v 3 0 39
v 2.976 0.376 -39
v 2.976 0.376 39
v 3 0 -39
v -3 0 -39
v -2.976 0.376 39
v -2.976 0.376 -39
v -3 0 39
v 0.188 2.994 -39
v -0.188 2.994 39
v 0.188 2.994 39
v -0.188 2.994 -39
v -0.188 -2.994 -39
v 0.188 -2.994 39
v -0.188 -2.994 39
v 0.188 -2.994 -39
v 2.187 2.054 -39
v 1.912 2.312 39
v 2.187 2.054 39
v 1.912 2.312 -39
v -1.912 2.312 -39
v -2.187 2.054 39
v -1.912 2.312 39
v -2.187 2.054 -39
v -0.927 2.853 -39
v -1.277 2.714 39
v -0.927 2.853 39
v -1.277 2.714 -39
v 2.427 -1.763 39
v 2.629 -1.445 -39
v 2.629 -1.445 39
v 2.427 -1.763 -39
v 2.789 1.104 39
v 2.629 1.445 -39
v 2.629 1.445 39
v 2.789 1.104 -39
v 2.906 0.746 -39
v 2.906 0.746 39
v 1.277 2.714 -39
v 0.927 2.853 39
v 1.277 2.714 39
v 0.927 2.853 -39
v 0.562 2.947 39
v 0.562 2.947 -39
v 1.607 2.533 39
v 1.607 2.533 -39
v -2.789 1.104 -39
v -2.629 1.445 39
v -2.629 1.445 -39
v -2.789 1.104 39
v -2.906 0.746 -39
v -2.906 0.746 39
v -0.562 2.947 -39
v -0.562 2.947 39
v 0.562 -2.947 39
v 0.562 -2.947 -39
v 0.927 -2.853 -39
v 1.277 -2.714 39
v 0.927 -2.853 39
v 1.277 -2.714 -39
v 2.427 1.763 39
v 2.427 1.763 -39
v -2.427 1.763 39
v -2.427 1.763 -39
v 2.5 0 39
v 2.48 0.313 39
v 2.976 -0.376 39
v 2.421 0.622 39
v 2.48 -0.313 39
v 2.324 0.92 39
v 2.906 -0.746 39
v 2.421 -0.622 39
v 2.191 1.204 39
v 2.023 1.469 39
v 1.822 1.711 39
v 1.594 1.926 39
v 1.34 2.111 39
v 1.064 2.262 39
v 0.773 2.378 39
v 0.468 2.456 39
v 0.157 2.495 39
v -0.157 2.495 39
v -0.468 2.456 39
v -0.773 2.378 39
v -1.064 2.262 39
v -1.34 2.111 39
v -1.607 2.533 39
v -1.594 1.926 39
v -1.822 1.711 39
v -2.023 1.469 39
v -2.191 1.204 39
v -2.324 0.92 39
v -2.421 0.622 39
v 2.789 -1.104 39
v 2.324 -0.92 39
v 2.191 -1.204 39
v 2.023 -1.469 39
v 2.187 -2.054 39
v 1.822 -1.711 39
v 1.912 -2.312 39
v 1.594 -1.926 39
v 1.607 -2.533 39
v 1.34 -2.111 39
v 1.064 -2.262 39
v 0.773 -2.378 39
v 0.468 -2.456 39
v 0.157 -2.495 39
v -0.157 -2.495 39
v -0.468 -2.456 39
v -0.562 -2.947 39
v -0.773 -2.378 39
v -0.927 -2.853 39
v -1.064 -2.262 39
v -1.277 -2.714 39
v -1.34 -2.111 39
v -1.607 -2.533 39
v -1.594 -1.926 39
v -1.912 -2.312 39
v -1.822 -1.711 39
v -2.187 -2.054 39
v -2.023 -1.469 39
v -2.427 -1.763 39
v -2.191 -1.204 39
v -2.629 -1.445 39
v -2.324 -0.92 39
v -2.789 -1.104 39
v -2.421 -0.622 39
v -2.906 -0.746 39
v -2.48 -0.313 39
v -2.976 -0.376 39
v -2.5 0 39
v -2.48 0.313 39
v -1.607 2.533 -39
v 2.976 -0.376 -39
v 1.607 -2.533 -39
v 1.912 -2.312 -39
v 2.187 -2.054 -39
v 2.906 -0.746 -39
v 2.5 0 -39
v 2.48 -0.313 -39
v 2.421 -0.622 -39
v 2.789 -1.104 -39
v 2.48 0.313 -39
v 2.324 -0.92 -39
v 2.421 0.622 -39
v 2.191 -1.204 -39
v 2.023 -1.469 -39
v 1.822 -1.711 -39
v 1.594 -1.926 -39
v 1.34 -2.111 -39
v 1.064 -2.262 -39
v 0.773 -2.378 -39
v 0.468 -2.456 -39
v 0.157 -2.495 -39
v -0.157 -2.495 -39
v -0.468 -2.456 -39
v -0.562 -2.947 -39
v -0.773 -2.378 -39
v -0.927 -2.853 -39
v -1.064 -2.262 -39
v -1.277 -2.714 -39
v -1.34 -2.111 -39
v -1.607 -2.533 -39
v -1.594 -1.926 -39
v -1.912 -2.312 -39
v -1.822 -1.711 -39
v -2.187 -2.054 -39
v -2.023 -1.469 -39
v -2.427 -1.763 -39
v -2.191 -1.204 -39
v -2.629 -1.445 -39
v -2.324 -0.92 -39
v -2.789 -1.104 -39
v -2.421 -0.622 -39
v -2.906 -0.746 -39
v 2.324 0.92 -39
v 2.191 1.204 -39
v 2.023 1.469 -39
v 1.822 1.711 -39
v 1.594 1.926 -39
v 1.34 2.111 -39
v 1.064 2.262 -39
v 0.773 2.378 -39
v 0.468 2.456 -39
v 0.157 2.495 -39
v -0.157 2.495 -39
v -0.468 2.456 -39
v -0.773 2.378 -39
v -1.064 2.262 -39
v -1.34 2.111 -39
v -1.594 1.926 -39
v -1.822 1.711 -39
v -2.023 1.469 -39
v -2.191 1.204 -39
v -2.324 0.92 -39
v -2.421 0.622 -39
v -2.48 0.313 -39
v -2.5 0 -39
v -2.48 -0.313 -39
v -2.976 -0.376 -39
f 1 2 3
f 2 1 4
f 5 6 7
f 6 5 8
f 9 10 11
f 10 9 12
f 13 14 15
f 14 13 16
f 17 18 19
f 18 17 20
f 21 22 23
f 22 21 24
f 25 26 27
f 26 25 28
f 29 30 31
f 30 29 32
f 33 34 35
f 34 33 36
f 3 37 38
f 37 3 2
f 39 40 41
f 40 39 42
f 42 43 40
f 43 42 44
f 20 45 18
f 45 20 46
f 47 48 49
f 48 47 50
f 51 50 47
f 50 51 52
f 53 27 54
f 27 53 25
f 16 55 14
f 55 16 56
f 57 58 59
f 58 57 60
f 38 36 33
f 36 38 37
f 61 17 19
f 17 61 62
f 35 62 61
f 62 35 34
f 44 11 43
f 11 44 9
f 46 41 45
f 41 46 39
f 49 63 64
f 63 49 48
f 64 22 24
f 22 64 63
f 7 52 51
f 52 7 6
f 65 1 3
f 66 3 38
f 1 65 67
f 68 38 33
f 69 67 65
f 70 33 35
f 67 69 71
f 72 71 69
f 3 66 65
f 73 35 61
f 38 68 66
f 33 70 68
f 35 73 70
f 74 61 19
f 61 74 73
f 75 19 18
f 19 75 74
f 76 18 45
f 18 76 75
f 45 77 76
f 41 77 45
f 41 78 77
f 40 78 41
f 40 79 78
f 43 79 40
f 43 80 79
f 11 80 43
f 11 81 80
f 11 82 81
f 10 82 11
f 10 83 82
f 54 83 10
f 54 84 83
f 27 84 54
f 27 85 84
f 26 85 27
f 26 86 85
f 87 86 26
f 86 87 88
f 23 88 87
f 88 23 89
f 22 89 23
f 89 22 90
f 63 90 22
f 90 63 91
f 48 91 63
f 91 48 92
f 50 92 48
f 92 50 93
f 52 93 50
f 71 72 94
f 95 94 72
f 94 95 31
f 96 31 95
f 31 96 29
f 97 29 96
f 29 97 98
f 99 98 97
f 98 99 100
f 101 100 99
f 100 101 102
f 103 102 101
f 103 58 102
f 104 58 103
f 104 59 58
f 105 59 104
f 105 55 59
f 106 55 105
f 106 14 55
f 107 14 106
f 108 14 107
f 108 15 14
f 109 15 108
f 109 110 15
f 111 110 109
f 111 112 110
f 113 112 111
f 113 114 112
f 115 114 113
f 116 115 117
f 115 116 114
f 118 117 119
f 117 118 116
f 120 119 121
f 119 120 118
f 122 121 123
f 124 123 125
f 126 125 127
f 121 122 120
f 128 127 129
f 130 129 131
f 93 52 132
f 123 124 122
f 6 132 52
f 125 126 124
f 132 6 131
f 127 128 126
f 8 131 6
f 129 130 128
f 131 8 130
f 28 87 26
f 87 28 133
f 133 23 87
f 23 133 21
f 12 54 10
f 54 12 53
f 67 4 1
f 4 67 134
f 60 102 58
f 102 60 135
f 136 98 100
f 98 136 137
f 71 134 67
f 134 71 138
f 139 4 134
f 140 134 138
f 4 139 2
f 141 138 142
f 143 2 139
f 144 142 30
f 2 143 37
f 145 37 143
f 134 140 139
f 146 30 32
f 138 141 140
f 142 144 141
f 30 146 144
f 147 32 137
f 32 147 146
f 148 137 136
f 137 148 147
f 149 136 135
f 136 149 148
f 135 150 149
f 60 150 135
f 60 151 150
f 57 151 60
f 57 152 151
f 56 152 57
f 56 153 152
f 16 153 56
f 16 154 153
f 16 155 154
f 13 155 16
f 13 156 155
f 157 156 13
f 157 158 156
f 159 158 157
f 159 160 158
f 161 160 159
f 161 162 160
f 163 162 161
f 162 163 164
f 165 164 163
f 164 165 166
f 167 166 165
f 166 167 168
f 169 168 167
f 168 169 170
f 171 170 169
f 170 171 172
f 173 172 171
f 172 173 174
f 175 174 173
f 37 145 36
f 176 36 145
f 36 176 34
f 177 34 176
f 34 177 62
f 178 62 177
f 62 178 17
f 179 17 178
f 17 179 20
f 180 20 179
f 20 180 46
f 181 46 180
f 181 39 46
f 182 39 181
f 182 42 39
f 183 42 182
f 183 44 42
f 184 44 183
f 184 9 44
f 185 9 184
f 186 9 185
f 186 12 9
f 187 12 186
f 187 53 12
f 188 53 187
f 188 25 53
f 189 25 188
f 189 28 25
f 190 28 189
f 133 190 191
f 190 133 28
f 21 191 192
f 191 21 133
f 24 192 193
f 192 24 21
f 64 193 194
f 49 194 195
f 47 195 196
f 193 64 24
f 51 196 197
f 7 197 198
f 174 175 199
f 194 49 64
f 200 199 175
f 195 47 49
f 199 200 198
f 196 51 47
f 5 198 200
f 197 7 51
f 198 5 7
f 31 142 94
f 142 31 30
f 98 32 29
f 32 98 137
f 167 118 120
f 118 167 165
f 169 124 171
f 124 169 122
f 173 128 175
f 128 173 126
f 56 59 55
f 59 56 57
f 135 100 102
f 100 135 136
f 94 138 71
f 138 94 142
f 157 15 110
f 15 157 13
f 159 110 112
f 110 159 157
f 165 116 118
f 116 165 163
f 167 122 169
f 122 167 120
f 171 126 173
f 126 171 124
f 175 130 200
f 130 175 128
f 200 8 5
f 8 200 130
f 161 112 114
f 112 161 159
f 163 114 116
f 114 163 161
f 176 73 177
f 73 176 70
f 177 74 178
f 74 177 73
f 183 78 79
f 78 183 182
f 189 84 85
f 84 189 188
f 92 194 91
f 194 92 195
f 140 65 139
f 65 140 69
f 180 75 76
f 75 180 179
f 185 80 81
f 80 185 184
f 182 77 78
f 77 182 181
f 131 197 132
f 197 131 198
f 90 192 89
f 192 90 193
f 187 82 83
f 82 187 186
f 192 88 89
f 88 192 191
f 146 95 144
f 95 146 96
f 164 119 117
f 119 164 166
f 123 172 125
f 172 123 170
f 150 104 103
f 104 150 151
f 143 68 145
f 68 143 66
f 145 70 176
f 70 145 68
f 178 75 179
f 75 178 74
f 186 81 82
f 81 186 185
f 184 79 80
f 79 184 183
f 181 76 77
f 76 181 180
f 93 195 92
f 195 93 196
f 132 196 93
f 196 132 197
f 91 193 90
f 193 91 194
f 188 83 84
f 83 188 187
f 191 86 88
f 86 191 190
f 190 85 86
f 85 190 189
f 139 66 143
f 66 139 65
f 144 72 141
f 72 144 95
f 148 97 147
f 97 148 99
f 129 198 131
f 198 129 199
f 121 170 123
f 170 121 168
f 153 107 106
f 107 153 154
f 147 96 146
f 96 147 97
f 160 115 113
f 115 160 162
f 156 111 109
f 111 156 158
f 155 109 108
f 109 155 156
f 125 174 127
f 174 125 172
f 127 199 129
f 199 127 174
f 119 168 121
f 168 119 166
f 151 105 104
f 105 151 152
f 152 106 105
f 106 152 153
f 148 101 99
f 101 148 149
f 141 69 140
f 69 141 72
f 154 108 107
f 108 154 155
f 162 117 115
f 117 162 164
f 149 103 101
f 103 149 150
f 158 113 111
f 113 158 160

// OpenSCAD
$fn = 50;


difference() {
	union() {
		translate(v = [0, 0, -39.0000000000]) {
			cylinder(h = 78, r = 3.0000000000);
		}
	}
	union() {
		translate(v = [0, 0, -100.0000000000]) {
			cylinder(h = 200, r = 2.5000000000);
		}
	}
}
